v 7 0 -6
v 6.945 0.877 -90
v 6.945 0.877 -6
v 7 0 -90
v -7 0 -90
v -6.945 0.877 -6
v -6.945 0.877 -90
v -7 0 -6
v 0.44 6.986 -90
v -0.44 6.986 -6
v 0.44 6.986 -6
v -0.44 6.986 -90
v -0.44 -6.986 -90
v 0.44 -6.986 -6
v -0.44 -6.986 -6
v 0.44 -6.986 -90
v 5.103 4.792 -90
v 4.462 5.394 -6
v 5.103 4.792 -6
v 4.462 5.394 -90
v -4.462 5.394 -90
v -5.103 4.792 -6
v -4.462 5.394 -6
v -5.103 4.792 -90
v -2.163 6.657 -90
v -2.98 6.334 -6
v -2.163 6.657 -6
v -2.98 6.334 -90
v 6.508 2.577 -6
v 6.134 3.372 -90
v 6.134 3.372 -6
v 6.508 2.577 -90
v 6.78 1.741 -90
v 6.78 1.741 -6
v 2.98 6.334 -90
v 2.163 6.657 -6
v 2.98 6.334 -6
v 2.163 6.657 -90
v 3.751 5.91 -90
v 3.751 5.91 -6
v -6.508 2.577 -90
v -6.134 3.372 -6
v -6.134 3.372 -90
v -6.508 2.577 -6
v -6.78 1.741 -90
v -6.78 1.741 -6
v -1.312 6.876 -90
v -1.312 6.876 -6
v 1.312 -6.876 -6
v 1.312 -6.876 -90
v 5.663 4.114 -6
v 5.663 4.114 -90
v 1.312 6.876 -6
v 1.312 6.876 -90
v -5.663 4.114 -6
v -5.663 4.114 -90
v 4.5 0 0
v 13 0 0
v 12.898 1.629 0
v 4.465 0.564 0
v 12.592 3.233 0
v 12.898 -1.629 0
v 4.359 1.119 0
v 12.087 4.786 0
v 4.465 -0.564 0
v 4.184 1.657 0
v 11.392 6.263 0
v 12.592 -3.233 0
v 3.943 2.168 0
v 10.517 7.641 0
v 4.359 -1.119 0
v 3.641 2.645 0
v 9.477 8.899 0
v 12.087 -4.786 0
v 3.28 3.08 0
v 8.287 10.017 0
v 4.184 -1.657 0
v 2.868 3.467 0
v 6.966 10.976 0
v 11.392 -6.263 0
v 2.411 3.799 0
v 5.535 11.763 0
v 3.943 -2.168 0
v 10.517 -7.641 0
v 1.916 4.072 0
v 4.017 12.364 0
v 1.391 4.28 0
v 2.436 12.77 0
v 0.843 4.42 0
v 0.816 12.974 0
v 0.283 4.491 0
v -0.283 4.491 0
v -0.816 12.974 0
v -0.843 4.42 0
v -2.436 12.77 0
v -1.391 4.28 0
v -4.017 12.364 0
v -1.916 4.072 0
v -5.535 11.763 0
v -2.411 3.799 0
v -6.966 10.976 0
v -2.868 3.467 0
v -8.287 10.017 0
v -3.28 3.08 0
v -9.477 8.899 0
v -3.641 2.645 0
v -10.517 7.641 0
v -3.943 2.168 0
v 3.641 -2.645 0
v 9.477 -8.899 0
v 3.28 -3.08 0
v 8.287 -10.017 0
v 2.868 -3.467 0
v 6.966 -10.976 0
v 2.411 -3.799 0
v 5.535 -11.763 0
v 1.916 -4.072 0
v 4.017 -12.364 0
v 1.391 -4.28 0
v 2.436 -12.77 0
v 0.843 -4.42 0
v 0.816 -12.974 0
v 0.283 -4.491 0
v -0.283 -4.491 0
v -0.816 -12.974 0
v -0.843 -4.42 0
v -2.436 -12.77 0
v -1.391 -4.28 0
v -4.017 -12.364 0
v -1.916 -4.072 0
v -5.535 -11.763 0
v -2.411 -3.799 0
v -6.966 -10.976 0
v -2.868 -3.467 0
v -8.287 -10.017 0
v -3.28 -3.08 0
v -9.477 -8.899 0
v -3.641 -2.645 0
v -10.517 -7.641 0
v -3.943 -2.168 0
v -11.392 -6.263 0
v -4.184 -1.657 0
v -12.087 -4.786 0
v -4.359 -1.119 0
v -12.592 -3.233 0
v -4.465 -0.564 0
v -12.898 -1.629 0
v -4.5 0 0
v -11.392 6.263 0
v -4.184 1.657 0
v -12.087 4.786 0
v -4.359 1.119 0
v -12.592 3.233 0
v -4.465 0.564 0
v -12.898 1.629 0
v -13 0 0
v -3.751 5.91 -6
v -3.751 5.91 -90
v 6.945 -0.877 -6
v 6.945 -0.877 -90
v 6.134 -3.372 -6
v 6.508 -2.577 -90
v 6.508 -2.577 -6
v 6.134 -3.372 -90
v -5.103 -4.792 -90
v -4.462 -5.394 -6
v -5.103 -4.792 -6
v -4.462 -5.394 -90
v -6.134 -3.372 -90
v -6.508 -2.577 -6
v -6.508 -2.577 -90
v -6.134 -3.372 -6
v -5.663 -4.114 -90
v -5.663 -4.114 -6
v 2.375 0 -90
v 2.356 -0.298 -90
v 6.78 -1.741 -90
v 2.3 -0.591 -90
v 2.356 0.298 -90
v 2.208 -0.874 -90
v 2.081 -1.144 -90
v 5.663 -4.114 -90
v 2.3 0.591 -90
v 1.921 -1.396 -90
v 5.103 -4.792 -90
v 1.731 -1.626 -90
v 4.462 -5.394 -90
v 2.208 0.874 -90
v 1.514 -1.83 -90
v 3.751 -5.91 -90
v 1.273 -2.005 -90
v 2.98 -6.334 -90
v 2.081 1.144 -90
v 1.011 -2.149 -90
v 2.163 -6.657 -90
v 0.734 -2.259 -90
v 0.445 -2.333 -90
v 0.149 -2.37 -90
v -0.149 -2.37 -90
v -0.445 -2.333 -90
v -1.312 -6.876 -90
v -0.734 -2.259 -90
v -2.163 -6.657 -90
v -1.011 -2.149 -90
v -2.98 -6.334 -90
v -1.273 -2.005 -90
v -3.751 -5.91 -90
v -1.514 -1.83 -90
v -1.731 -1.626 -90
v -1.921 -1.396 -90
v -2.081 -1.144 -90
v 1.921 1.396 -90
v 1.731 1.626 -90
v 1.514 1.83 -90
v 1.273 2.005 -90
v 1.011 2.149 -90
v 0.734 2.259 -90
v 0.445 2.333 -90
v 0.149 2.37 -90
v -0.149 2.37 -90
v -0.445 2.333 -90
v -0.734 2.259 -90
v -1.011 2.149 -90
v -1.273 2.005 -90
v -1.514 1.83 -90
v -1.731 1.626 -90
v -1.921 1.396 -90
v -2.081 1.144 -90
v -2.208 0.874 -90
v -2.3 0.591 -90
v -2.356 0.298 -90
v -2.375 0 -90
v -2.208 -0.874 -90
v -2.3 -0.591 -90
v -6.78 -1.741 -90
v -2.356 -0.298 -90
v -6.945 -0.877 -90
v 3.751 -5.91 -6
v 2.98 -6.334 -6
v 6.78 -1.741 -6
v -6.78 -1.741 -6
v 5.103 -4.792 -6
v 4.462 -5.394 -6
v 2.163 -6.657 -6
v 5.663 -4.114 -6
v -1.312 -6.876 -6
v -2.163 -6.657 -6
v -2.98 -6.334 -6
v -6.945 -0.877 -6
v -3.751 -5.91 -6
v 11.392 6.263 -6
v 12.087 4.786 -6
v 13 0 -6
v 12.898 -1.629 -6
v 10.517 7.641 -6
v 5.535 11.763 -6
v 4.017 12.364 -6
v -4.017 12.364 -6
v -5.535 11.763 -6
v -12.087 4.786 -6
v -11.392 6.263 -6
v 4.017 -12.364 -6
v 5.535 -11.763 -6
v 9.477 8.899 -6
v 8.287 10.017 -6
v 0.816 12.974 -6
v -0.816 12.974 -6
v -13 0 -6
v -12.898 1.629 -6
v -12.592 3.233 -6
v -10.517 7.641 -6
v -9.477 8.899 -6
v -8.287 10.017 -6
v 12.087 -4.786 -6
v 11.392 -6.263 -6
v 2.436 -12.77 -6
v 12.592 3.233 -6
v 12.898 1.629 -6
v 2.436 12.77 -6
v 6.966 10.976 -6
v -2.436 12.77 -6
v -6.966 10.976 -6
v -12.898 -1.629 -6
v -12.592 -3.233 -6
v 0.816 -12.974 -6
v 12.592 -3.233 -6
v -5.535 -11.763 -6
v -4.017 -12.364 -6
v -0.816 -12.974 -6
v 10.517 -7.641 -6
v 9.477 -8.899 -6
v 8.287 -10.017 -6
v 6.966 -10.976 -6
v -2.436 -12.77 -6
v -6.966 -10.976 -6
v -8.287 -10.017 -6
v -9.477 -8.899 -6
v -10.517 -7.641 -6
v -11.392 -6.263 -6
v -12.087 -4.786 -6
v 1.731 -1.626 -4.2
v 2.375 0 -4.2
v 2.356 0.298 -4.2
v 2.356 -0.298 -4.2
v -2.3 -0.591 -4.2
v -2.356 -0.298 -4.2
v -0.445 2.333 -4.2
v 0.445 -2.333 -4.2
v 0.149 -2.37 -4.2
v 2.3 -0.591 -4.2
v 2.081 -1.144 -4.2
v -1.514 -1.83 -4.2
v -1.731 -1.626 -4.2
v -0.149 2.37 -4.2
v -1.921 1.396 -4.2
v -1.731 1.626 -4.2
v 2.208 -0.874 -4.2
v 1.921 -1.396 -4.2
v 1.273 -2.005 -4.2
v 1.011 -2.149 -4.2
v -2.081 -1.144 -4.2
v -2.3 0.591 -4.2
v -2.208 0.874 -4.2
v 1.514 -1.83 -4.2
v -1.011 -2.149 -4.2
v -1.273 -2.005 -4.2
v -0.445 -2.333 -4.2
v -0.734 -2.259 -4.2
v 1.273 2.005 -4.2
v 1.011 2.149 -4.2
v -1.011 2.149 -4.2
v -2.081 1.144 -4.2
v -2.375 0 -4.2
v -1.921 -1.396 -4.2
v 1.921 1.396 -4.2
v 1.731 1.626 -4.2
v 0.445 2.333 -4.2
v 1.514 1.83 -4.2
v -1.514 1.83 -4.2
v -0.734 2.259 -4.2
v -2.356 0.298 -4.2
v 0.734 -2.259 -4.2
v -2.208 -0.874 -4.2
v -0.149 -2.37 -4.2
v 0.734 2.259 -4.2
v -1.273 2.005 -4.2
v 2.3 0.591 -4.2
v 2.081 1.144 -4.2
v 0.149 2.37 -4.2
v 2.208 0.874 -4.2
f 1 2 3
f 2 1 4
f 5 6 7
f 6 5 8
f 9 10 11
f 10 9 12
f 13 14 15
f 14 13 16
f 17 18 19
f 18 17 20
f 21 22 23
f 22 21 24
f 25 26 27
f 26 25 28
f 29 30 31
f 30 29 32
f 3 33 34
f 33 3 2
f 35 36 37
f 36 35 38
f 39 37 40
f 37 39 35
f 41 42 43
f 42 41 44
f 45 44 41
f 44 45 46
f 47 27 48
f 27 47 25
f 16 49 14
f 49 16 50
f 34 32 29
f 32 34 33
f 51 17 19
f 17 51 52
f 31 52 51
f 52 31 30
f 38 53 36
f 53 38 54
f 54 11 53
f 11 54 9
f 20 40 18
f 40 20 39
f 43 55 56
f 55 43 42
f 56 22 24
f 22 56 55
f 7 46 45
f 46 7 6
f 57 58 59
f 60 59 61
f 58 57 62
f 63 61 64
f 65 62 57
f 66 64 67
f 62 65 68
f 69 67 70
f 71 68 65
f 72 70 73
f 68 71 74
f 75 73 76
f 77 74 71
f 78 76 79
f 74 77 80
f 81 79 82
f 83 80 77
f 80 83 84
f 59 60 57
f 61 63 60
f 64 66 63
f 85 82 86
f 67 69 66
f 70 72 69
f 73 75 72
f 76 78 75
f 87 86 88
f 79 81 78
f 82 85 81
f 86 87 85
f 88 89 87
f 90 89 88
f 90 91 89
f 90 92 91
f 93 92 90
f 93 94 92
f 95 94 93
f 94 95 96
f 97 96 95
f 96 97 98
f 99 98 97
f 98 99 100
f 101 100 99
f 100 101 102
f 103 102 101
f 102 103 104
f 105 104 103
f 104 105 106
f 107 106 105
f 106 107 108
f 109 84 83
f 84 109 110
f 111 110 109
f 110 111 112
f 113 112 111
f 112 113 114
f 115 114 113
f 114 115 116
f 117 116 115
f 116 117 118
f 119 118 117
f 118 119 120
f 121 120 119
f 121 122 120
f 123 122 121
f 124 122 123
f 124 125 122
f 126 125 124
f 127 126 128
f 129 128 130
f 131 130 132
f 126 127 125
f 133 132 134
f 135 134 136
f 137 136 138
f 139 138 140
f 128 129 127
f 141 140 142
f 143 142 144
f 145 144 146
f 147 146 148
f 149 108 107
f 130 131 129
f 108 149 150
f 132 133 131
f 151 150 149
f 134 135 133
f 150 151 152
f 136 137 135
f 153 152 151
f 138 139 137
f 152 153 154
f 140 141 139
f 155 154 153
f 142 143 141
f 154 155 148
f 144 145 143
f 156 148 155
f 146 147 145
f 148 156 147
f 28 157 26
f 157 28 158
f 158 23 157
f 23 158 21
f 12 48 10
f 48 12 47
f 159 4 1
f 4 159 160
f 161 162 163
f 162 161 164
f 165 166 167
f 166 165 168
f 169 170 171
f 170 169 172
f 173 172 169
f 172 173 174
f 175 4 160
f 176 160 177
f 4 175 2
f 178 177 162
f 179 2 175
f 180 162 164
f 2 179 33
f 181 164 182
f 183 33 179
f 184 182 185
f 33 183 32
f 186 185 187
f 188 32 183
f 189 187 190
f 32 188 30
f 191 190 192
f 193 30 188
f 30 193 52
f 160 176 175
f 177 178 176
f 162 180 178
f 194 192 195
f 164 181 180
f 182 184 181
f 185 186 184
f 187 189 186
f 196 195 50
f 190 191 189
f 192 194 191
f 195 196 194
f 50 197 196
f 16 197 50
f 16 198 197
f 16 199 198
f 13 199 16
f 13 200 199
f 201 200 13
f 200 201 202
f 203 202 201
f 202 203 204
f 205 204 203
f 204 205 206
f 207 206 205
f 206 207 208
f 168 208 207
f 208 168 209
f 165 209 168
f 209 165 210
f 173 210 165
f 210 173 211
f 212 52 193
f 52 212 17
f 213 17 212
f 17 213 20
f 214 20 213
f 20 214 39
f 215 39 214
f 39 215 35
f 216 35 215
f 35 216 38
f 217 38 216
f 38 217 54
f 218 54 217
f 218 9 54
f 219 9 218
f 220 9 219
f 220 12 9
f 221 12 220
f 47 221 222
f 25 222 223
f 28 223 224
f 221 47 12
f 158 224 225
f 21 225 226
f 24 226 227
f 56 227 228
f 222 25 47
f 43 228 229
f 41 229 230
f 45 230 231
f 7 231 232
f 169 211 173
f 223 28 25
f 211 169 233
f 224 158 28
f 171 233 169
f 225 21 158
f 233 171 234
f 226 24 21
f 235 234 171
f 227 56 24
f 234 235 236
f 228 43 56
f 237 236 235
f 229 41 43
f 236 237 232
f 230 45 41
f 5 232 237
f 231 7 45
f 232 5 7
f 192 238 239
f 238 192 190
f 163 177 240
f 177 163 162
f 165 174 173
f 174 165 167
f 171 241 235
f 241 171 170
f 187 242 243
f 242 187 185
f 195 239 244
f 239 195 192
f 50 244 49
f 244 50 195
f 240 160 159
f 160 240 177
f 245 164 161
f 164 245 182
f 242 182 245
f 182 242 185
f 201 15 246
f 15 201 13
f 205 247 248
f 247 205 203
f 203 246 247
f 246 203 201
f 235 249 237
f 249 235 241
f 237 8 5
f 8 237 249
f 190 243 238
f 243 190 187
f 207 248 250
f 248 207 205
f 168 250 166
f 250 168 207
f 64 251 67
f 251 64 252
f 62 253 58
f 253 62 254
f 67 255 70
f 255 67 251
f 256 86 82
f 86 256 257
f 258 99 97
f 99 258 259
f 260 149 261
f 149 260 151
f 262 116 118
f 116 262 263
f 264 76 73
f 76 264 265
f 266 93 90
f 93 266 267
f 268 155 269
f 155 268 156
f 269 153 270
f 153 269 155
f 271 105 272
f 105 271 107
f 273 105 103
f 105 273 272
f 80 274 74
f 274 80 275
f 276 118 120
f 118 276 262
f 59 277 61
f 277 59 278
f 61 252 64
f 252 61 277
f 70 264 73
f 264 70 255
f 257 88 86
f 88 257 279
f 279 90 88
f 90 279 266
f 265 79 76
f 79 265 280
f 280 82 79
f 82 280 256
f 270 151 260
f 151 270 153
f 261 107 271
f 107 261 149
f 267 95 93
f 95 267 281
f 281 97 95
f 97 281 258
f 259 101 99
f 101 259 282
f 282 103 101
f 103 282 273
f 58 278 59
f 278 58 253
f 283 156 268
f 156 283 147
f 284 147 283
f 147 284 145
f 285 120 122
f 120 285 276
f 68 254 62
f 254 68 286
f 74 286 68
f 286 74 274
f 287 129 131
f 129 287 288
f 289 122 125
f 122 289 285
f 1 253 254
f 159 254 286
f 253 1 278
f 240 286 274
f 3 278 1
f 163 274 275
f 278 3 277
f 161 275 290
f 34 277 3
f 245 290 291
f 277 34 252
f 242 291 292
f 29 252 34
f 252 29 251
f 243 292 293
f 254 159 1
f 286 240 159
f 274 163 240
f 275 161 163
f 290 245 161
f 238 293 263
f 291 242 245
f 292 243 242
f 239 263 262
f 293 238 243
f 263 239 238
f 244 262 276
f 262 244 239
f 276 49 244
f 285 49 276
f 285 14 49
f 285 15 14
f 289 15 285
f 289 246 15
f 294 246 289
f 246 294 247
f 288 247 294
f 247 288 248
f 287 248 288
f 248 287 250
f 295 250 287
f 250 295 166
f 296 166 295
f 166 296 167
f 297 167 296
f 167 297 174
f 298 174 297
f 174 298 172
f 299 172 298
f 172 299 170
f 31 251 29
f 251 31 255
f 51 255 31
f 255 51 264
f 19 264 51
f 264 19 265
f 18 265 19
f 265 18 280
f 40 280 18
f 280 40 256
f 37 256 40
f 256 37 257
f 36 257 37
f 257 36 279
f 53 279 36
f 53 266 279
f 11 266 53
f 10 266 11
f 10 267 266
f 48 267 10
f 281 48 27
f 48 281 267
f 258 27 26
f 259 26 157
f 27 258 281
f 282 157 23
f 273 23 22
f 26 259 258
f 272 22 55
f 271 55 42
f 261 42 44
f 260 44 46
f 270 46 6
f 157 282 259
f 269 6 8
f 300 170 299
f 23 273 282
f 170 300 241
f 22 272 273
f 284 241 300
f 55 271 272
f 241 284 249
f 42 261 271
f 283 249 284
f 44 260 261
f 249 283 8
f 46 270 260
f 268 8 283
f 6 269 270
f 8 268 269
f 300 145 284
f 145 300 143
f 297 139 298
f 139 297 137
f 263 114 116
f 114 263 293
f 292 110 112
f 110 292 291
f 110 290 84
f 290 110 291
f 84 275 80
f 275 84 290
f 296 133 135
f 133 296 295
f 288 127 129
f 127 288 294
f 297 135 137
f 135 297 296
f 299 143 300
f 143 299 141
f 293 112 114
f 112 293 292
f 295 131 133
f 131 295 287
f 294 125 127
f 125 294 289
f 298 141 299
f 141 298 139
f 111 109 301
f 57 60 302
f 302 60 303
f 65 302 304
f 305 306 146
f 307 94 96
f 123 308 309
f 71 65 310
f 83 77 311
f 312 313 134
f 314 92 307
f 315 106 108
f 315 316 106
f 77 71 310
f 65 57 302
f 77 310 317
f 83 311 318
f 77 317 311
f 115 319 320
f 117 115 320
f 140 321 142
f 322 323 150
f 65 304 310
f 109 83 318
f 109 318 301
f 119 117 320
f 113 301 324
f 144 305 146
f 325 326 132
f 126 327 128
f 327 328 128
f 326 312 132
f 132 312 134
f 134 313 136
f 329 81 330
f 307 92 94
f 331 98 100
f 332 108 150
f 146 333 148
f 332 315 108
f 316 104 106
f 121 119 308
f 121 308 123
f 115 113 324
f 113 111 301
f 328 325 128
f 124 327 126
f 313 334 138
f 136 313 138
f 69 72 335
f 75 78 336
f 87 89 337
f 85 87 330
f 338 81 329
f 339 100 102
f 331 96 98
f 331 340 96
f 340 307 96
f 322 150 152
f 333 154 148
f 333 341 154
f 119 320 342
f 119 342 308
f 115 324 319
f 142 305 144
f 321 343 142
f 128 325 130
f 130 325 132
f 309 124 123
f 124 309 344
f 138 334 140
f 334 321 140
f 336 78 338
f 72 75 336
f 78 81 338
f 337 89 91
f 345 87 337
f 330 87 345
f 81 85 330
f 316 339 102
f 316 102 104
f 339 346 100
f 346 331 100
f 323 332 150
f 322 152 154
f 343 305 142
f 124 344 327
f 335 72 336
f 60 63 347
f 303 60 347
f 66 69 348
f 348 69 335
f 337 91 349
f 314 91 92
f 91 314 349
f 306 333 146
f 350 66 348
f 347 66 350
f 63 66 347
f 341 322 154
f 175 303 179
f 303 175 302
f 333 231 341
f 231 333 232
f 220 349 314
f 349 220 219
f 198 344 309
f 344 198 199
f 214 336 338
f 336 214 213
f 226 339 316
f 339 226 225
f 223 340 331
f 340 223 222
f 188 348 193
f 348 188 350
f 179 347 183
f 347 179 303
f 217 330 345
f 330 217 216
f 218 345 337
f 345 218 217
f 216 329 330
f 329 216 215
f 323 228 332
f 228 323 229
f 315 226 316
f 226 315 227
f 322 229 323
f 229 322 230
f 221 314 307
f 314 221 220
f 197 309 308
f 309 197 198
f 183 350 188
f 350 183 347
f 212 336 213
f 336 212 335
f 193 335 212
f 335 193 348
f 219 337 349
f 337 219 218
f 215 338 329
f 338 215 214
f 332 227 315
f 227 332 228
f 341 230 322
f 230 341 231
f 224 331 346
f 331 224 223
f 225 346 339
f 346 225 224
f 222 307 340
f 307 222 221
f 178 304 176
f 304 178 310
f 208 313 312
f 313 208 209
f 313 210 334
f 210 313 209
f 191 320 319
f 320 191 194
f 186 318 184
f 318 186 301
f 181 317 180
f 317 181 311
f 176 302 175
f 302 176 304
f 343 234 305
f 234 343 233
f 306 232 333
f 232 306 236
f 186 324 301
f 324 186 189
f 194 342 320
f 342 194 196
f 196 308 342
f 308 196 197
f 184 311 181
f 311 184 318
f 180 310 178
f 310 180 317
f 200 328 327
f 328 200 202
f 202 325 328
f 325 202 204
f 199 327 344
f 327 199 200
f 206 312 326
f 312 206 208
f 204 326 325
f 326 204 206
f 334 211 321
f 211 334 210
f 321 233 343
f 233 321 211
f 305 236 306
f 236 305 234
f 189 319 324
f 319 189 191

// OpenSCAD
$fn = 50;


difference() {
	union() {
		translate(v = [0, 0, -90.0000000000]) {
			cylinder(h = 90, r = 7.0000000000);
		}
		translate(v = [0, 0, -6.0000000000]) {
			cylinder(h = 6, r = 13.0000000000);
		}
	}
	union() {
		translate(v = [0, 0, 0]) {
			rotate(a = [0, 0, 0]) {
				difference() {
					union() {
						#translate(v = [0, 0, -90.0000000000]) {
							cylinder(h = 90, r = 2.2500000000);
						}
						#translate(v = [0, 0, -4.2000000000]) {
							cylinder(h = 4.2000000000, r1 = 2.3750000000, r2 = 4.5000000000);
						}
						#translate(v = [0, 0, -90.0000000000]) {
							cylinder(h = 90, r = 2.3750000000);
						}
						#translate(v = [0, 0, -90.0000000000]) {
							cylinder(h = 90, r = 2.2500000000);
						}
					}
					union();
				}
			}
		}
	}
}
